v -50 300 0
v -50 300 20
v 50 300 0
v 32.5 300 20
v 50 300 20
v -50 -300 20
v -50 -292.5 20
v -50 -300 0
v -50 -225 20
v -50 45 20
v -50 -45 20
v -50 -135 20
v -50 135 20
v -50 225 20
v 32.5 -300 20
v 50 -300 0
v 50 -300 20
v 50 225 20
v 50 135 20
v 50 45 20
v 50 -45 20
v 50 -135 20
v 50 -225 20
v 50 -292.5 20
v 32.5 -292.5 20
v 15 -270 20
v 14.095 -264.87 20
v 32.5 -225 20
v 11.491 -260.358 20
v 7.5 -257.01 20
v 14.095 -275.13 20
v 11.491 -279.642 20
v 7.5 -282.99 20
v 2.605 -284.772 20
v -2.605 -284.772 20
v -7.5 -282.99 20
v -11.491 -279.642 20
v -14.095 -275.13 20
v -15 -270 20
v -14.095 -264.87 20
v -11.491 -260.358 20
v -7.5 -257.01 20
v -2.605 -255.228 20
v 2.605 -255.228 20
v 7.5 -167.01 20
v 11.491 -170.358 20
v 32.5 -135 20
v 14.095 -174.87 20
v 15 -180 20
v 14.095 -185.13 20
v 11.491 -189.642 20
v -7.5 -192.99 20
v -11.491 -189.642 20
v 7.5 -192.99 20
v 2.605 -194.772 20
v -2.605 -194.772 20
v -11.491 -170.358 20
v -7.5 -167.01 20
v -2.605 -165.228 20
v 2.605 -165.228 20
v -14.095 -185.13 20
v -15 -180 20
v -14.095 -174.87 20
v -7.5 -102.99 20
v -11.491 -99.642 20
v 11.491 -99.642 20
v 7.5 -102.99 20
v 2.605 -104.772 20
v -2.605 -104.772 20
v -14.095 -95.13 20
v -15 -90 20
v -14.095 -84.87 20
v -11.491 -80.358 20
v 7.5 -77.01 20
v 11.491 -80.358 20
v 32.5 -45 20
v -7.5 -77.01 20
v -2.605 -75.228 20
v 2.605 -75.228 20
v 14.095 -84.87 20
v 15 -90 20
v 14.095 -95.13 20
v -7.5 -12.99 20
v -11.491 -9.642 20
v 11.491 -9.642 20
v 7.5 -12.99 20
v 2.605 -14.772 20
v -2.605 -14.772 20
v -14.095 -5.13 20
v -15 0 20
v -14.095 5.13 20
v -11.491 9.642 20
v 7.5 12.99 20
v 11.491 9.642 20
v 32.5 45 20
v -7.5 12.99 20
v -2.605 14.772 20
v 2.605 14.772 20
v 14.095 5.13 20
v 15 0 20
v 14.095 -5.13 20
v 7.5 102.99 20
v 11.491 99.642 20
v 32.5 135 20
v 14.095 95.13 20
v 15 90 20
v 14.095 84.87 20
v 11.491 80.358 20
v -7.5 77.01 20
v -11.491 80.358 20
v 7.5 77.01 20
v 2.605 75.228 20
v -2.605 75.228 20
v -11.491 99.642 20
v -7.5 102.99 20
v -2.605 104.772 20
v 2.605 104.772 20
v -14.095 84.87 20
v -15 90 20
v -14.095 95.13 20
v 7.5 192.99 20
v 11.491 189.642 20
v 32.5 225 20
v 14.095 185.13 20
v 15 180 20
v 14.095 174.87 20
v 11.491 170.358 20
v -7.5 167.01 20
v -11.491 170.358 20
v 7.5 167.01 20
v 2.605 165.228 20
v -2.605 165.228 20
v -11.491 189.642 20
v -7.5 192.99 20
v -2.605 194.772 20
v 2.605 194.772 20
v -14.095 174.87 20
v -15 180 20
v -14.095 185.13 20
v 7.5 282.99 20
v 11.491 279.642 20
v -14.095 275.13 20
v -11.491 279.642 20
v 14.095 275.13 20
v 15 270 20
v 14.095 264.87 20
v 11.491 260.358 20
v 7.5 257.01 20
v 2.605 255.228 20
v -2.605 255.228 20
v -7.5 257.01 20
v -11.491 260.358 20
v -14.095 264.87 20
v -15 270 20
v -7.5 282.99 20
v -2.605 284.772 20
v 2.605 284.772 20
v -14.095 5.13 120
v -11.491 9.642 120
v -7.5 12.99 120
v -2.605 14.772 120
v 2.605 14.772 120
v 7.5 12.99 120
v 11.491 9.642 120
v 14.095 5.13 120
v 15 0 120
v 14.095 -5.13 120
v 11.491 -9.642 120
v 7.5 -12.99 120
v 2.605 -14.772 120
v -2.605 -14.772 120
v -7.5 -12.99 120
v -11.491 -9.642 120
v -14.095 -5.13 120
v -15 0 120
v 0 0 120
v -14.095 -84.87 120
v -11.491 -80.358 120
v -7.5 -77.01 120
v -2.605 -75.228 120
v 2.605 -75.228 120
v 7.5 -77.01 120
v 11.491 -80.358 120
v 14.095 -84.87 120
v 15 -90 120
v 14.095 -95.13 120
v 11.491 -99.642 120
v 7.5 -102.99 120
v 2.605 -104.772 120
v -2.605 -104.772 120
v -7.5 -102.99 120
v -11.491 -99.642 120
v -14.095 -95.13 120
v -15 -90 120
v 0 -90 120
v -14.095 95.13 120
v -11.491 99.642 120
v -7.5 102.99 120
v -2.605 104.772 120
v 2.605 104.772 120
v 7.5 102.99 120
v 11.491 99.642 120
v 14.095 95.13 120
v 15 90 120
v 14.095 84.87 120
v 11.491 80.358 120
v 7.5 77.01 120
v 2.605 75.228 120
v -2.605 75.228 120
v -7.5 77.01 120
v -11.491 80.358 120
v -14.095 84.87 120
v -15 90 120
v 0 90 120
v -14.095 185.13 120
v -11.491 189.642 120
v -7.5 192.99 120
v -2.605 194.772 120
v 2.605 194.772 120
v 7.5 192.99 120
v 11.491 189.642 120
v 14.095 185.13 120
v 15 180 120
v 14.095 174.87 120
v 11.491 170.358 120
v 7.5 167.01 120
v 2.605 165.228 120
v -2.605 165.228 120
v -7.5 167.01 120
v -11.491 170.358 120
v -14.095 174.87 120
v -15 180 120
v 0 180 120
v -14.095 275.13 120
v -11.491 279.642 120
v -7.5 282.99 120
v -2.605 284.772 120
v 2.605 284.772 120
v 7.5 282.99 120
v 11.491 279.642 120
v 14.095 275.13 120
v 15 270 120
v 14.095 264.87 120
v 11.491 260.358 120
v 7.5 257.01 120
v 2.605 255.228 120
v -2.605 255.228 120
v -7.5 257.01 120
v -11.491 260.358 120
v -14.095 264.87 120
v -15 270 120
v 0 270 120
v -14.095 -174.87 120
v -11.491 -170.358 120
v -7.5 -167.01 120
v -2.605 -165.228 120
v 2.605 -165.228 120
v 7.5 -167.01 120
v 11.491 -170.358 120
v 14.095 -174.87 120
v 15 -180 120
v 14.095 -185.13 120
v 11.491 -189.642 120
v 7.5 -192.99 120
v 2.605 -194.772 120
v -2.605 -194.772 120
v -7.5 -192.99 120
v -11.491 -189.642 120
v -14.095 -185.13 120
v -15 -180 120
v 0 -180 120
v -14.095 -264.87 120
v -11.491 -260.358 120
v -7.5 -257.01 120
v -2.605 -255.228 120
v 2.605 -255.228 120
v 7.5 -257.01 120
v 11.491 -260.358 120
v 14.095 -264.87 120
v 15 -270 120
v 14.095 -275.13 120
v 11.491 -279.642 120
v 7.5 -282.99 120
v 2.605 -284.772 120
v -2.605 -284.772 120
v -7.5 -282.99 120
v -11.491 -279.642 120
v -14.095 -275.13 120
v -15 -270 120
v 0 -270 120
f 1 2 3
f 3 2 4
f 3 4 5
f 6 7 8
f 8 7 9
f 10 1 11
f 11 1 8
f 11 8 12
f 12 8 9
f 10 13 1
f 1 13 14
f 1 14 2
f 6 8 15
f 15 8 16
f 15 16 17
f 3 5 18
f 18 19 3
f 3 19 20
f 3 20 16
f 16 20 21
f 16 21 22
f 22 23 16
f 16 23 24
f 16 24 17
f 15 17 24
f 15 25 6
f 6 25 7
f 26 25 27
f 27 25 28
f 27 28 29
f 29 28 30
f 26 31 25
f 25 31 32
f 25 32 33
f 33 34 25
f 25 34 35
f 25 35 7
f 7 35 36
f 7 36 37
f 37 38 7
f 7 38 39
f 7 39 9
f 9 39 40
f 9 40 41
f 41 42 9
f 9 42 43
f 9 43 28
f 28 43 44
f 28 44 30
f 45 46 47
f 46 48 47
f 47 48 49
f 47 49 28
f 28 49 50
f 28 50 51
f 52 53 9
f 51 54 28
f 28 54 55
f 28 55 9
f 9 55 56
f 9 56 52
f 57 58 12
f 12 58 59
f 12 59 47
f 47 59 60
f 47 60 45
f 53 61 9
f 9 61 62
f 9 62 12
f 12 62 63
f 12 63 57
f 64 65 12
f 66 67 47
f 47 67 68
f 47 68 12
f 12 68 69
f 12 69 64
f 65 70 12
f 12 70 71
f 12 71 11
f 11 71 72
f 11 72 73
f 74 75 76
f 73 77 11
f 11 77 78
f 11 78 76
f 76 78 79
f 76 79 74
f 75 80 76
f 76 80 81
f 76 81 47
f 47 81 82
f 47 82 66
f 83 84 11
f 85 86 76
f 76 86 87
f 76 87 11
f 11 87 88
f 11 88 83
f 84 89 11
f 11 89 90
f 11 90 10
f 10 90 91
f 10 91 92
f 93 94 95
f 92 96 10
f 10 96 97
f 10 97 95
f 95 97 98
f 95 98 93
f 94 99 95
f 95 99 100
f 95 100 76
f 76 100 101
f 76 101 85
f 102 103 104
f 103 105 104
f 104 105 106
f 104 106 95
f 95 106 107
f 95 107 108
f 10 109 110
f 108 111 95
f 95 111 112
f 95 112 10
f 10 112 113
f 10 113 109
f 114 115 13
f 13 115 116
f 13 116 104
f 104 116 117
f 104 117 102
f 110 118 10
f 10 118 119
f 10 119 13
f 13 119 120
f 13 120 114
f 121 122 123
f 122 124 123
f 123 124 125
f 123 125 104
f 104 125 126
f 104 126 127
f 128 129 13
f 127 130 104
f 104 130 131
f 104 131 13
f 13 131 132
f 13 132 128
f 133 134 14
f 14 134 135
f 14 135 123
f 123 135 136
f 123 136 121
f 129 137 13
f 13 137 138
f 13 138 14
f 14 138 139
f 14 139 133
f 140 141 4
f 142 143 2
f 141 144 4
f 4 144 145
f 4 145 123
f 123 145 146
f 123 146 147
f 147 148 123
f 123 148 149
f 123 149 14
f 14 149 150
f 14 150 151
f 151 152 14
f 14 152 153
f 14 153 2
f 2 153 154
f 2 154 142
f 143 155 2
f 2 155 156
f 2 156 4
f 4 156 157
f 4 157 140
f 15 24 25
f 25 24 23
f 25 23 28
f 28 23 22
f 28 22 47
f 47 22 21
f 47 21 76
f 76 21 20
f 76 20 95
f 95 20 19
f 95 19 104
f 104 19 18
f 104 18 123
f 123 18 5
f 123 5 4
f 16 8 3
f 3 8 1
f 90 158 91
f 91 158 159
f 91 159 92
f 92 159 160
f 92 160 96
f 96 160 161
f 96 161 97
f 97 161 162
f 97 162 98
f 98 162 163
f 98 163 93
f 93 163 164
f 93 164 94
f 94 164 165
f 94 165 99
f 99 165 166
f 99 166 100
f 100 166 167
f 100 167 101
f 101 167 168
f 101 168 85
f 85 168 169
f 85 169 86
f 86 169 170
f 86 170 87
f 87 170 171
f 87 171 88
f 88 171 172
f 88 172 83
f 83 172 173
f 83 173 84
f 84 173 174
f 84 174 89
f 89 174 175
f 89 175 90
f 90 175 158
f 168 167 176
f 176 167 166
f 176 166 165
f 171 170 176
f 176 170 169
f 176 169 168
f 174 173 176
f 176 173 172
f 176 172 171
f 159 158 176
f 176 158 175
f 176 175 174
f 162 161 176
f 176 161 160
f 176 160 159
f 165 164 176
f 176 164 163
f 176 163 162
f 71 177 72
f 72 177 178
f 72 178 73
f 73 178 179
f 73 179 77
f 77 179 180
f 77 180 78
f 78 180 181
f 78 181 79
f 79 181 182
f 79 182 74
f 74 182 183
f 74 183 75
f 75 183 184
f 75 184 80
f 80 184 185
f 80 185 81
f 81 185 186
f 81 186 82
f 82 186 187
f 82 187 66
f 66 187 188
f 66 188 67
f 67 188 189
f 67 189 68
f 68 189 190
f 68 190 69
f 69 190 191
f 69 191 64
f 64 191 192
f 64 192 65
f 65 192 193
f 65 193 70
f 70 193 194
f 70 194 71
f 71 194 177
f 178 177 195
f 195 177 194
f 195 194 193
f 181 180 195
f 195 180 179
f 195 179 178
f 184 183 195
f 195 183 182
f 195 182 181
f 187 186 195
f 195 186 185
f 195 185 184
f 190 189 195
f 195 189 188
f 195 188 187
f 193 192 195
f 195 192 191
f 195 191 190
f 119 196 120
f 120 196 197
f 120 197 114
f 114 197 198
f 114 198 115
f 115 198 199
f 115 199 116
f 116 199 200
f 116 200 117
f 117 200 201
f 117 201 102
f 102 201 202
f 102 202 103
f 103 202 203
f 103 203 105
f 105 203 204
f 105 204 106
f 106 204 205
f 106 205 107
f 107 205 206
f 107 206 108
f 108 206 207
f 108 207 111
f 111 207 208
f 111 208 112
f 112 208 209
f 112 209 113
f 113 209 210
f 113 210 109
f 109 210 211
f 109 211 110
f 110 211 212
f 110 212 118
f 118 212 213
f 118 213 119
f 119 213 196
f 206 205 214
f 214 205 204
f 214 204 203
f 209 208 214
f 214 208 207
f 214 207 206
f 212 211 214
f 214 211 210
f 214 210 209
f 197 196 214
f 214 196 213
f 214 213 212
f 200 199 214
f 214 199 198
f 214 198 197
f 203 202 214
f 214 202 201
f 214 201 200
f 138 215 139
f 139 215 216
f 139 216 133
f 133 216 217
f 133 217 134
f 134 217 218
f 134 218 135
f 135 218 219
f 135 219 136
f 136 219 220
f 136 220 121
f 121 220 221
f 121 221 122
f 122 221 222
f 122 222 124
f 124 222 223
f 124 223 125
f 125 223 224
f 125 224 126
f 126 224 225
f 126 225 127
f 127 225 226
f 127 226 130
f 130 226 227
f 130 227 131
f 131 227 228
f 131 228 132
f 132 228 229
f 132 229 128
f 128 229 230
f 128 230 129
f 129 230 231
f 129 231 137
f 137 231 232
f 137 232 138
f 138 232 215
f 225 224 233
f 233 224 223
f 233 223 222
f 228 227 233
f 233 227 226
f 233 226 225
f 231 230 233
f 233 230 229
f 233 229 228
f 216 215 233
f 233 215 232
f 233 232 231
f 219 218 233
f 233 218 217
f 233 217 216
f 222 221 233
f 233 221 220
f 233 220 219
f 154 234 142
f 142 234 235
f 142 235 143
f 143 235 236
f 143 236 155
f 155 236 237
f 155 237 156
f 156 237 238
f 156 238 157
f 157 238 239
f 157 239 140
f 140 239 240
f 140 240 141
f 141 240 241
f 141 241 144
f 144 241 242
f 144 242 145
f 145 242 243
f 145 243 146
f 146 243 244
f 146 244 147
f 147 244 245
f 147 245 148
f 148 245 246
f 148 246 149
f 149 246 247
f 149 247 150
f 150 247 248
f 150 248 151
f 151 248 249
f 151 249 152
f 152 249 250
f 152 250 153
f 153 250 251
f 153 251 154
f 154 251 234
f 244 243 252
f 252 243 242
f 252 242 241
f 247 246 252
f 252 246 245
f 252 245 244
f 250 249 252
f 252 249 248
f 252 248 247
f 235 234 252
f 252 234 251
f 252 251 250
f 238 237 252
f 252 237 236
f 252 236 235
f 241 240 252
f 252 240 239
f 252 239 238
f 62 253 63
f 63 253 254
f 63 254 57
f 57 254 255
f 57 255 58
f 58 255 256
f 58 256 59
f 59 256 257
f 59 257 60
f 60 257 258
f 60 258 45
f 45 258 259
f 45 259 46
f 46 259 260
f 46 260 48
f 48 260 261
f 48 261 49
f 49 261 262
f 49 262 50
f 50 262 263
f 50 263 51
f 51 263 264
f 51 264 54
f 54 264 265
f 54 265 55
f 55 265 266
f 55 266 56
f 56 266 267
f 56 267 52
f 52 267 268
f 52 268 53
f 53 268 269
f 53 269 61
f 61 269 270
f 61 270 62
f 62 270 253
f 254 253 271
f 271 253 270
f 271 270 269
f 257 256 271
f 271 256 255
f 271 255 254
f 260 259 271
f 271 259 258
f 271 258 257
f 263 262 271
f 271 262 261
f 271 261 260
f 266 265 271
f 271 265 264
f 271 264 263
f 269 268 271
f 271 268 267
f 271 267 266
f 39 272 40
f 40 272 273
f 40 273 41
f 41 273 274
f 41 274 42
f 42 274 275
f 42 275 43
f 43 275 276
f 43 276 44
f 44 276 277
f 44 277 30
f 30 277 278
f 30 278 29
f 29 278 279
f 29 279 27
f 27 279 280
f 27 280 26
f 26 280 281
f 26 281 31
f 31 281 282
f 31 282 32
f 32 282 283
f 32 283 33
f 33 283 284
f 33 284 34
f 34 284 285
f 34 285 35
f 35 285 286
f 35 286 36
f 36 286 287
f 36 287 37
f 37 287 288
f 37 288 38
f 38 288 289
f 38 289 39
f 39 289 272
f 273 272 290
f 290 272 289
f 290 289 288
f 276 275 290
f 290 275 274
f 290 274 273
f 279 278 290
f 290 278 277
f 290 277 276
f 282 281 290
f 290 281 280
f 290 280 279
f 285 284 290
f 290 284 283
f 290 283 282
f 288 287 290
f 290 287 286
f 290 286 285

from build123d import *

# Parameters (mm, degrees)
SKETCH_1_W      = 100
SKETCH_1_H      = 600
EXTRUDE_1_DEPTH = 20
SKETCH_2_R      = 15
EXTRUDE_2_DEPTH = 100


with BuildPart() as part:
    # 草图1 → 凸台-拉伸1 (new body)
    with BuildSketch(Plane.XY):
        Rectangle(SKETCH_1_W, SKETCH_1_H)
    extrude(amount=EXTRUDE_1_DEPTH)

    # 草图2 → 凸台-拉伸2 (add)
    with BuildSketch(Plane.XY.offset(20)):
        Circle(SKETCH_2_R)
        with Locations((0, 90)):
            Circle(SKETCH_2_R)
        with Locations((0, 180)):
            Circle(SKETCH_2_R)
        with Locations((0, 270)):
            Circle(SKETCH_2_R)
        with Locations((0, -90)):
            Circle(SKETCH_2_R)
        with Locations((0, -180)):
            Circle(SKETCH_2_R)
        with Locations((0, -270)):
            Circle(SKETCH_2_R)
    extrude(amount=EXTRUDE_2_DEPTH)


solid = part.part
